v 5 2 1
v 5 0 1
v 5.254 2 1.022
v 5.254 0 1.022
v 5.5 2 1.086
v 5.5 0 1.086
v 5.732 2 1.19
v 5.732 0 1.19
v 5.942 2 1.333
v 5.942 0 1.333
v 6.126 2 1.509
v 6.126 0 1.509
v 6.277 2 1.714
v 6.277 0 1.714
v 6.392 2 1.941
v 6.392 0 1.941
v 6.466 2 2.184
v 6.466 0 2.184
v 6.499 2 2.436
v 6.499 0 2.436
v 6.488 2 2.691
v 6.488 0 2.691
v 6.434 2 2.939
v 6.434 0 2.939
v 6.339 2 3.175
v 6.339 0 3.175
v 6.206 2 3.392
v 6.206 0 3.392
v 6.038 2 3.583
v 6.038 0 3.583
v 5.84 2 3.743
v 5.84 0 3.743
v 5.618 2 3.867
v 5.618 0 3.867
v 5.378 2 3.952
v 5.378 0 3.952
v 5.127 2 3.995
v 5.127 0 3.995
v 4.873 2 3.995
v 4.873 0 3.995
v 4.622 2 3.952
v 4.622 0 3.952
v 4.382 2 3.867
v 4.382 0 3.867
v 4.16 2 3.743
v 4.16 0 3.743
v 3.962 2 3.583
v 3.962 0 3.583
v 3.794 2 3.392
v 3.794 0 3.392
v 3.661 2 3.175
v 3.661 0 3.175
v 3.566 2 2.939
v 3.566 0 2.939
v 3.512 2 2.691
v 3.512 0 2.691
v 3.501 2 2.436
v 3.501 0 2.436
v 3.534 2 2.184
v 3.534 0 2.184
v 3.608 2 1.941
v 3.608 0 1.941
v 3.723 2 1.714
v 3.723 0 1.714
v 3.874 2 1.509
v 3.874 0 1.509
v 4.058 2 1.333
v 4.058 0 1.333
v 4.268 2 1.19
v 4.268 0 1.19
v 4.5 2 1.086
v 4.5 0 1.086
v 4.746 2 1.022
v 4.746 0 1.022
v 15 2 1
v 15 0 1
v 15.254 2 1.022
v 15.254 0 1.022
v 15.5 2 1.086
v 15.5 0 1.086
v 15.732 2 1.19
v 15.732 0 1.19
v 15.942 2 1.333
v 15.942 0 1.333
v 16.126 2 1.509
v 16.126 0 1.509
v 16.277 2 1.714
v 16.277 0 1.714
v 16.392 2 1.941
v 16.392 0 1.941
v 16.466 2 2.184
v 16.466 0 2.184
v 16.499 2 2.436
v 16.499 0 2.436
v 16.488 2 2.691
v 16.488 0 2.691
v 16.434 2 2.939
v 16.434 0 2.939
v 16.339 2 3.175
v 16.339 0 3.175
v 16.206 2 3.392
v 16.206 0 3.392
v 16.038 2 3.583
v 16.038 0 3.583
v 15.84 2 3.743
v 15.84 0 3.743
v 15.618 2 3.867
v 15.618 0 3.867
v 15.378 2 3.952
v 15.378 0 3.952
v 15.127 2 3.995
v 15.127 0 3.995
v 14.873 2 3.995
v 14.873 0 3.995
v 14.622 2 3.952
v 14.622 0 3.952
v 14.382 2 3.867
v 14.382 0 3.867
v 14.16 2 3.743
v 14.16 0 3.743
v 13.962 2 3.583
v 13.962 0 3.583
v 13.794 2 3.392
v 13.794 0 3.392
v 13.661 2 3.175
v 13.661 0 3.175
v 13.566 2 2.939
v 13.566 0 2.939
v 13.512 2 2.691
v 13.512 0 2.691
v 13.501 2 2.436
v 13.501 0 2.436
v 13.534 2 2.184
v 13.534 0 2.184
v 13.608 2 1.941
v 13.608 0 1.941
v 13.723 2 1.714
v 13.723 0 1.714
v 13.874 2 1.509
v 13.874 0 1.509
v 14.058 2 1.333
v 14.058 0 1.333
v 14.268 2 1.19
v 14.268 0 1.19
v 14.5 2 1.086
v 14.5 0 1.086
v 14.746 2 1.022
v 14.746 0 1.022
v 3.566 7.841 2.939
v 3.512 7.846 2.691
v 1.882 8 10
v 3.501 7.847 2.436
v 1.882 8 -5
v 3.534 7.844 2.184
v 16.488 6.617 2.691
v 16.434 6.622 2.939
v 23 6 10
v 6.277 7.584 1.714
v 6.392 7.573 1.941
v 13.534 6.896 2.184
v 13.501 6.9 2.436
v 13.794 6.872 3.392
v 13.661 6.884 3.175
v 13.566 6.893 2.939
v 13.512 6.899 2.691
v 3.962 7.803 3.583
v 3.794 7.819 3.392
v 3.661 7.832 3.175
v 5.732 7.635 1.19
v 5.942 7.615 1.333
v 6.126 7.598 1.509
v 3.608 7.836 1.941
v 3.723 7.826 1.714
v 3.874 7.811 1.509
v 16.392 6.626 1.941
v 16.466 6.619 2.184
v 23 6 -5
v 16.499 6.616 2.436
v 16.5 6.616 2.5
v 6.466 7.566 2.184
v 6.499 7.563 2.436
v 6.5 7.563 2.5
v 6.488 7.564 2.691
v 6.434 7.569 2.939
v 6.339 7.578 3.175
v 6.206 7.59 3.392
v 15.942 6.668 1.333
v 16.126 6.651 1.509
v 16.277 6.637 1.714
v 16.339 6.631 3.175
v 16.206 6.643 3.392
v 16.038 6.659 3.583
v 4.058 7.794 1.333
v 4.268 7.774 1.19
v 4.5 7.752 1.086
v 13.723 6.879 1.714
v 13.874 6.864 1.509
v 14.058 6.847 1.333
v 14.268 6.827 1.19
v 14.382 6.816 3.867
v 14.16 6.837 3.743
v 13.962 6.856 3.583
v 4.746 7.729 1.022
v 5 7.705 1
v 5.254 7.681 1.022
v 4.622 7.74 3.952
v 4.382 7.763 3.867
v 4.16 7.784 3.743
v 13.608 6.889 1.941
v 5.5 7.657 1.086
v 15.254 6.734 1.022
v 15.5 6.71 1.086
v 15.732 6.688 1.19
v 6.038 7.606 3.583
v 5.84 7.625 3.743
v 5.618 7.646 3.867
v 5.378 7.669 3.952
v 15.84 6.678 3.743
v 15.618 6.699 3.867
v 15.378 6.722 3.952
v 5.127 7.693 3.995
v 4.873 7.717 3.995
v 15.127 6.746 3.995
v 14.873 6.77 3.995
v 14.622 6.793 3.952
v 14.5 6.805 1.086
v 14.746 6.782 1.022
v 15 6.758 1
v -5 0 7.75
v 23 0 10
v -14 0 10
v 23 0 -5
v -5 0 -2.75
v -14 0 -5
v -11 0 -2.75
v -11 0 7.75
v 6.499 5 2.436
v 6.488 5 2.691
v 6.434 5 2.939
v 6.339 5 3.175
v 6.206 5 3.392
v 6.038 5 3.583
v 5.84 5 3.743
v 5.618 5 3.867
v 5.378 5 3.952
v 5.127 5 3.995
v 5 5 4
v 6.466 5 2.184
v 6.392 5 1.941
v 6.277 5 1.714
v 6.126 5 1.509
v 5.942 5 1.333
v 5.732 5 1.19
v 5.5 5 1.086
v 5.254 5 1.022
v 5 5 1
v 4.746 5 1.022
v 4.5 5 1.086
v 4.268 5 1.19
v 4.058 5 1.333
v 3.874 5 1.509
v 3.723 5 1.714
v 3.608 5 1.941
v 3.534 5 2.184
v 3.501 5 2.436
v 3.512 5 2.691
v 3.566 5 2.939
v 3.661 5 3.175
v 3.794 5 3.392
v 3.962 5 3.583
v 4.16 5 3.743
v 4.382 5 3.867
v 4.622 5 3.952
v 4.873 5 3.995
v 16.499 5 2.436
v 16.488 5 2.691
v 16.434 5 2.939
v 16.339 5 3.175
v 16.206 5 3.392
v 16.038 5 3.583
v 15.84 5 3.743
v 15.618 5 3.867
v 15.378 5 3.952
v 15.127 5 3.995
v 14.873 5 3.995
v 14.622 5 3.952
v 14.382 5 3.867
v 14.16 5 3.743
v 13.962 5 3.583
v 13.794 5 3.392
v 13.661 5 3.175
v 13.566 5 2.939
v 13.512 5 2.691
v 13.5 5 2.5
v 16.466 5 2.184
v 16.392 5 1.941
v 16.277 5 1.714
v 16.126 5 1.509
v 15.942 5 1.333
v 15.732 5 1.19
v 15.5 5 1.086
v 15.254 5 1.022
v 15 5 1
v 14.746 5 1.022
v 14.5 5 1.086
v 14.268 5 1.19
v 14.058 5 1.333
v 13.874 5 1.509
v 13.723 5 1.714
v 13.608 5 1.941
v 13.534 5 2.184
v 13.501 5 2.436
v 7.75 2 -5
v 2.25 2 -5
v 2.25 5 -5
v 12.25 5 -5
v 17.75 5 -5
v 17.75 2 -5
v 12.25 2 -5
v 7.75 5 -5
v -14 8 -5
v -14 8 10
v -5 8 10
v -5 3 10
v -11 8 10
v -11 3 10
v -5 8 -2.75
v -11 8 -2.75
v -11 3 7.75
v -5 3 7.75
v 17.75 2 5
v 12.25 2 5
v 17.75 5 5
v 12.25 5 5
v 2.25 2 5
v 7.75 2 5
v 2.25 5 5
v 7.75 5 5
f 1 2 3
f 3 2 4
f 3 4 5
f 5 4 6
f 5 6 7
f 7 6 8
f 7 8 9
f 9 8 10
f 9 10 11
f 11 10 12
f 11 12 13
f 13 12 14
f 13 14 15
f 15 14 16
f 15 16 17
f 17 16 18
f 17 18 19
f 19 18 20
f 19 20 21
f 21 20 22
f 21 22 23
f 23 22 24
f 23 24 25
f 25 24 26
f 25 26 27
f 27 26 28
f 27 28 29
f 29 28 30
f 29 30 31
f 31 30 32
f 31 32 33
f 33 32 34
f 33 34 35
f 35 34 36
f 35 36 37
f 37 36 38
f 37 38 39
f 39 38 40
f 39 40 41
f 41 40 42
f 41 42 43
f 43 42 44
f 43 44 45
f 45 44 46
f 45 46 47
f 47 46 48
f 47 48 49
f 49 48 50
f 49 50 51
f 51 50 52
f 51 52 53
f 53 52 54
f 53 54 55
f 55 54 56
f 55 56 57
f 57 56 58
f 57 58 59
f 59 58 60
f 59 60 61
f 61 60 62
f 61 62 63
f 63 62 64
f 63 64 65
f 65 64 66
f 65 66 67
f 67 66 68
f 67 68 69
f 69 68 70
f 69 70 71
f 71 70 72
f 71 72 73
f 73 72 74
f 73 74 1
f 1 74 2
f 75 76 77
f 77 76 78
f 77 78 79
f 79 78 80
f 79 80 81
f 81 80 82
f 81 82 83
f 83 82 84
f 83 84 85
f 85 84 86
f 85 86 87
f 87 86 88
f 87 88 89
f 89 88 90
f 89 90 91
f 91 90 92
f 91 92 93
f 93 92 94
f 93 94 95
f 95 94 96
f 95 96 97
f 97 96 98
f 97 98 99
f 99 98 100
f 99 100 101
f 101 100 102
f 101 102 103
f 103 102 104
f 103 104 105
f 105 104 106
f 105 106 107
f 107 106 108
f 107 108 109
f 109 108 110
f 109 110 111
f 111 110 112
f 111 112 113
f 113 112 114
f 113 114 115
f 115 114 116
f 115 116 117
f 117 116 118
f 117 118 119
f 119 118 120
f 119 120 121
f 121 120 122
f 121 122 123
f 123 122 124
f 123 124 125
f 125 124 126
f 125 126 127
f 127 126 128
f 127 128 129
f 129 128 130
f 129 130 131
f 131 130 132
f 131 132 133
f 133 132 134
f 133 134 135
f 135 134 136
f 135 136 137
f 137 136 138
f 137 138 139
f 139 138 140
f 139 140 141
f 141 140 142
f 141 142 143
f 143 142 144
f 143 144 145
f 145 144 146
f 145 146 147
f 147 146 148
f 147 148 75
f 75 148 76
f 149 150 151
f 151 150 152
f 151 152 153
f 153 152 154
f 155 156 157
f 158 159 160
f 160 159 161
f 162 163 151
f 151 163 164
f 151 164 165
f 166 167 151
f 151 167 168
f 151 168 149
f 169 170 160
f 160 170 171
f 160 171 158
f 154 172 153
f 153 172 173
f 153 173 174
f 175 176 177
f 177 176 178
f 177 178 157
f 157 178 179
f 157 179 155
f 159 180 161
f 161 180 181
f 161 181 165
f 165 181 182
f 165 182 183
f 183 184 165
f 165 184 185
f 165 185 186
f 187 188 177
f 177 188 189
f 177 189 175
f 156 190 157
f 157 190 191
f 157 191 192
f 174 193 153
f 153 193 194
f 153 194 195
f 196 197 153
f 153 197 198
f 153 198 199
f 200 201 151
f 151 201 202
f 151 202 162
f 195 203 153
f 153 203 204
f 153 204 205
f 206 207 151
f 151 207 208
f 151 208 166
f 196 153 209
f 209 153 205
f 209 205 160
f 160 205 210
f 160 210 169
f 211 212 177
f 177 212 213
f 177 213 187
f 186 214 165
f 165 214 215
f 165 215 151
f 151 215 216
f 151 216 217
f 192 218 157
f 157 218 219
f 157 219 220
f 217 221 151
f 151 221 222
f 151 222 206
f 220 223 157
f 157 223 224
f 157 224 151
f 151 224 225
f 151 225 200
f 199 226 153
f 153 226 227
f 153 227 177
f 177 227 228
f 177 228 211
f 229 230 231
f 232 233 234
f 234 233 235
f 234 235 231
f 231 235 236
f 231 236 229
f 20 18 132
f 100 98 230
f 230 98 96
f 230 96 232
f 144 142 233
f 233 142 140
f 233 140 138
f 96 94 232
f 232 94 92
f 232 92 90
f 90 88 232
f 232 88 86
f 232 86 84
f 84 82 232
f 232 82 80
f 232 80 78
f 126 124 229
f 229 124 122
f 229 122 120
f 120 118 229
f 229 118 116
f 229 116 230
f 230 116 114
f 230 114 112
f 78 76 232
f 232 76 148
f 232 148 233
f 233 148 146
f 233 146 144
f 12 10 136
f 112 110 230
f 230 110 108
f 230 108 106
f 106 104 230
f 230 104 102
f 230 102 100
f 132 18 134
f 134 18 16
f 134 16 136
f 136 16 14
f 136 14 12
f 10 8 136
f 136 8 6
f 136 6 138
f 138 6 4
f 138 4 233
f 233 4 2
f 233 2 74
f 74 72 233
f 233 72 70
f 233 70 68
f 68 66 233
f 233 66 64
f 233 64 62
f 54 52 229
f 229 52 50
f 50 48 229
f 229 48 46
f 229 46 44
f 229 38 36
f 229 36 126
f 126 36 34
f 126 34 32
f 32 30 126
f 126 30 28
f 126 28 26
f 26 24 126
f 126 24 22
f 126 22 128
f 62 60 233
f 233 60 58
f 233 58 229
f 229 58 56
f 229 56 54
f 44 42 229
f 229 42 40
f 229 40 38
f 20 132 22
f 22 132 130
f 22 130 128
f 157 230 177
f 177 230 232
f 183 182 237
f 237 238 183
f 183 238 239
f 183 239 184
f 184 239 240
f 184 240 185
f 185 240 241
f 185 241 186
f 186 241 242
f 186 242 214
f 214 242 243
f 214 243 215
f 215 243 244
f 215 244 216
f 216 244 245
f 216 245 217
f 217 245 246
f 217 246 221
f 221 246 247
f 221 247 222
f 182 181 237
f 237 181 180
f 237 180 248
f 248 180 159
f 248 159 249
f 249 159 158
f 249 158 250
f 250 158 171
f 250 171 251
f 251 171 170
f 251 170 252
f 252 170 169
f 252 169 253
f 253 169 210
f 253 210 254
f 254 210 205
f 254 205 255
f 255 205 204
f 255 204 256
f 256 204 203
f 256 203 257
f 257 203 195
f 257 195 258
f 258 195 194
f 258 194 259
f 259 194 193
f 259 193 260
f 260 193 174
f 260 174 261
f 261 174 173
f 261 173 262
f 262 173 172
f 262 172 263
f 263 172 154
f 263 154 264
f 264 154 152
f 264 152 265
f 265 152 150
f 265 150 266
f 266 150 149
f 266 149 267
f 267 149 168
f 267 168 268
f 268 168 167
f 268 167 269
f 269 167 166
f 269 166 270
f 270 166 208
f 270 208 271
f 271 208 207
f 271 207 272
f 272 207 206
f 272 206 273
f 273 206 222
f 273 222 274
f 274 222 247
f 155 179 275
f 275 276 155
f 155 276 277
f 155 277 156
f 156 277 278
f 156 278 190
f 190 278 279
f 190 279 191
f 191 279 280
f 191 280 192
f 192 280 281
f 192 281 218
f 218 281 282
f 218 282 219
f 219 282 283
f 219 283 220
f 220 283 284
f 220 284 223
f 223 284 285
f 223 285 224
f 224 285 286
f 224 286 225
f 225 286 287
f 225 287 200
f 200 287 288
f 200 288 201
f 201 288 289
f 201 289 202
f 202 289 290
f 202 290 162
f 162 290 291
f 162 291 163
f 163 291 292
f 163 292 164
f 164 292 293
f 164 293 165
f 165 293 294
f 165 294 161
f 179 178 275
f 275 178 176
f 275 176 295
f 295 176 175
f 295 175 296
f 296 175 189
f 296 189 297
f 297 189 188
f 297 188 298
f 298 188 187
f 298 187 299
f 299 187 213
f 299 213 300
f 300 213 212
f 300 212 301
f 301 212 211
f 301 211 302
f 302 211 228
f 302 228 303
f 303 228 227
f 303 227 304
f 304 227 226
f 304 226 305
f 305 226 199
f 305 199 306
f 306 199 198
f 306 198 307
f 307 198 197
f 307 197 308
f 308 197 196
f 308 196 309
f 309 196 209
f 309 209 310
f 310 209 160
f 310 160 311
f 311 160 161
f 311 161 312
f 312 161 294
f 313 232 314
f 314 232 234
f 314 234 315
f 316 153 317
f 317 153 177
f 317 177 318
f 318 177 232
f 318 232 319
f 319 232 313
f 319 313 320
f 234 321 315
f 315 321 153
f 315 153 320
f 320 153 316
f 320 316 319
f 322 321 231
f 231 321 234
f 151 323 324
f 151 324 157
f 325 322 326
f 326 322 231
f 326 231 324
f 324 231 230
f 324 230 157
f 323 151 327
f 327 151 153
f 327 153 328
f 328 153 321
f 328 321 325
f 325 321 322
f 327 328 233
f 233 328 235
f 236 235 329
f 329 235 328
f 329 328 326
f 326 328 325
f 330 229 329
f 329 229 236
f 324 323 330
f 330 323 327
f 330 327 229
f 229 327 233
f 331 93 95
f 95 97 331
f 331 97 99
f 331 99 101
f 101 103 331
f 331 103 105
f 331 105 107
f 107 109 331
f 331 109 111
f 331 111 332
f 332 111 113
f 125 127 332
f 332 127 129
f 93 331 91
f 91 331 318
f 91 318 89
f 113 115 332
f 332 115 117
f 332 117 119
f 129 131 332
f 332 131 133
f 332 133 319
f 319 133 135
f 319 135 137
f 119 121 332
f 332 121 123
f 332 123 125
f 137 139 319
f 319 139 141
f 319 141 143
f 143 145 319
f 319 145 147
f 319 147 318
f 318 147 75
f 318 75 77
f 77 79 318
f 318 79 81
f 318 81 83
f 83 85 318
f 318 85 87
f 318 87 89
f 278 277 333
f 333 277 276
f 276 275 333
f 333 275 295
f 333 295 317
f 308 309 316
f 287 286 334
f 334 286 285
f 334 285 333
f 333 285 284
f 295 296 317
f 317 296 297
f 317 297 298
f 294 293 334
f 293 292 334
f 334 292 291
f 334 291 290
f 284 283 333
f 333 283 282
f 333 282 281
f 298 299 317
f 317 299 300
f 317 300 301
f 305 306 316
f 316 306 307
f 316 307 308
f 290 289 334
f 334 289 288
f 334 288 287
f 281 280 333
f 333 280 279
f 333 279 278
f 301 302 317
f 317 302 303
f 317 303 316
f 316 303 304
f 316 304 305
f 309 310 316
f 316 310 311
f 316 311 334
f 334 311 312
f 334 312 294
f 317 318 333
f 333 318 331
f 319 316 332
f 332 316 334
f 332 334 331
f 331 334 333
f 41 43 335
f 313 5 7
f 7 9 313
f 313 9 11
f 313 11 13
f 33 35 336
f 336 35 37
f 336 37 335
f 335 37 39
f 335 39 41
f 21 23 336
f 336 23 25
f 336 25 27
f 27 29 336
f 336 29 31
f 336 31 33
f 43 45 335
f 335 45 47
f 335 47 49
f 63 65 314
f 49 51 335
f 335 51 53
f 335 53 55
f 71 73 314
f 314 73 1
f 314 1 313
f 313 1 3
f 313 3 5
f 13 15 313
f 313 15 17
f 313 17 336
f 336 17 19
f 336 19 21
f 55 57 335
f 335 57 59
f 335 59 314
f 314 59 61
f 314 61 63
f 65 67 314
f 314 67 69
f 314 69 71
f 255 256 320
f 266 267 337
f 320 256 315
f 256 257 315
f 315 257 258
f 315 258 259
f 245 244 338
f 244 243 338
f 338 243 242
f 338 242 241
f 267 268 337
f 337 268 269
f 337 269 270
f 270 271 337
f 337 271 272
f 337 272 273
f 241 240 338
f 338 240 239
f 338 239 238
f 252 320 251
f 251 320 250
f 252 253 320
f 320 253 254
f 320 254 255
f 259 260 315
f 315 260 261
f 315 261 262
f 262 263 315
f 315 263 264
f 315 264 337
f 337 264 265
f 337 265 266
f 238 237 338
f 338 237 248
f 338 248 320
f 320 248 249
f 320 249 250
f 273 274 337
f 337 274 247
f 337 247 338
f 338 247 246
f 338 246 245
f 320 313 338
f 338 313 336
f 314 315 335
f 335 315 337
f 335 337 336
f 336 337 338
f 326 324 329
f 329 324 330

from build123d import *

# Parameters (mm, degrees)
BOSS_EXTRUDE1_DEPTH     = 5
SKETCH2_R               = 1.5
CUT_EXTRUDE1_DEPTH      = 10
SKETCH4_W               = 6
SKETCH4_H               = 10.5
BOSS_EXTRUDE2_DEPTH     = 8
SKETCH3_W               = 5.5
SKETCH3_H               = 3
CUT_EXTRUDE2_DEPTH      = 27.379590534
CUT_EXTRUDE4_DEPTH      = 27.379590534
CUT_EXTRUDE4_DEPTH_BACK = 27.379590534
SKETCH9_W               = 6
SKETCH9_H               = 2.25
CUT_EXTRUDE5_DEPTH      = 5


with BuildPart() as part:
    # Sketch1 → Boss-Extrude1 (new body)
    with BuildSketch(Plane.XY):
        Polygon((0, 8.178190311), (0, 0), (23, 0), (23, 6), align=None)
    extrude(amount=BOSS_EXTRUDE1_DEPTH)

    # Sketch2 → Cut-Extrude1 (cut)
    with BuildSketch(Plane(origin=(0, 0, 0), x_dir=(-1, 0, 0), z_dir=(0, -1, 0))):
        with Locations(Location((-15, -2.5, 0), (0, 0, 90))):
            Circle(SKETCH2_R)
        with Locations(Location((-5, -2.5, 0), (0, 0, 90))):
            Circle(SKETCH2_R)
    extrude(amount=-CUT_EXTRUDE1_DEPTH, mode=Mode.SUBTRACT)

    # Sketch4 → Boss-Extrude2 (add)
    with BuildSketch(Plane(origin=(0, 0, 0), x_dir=(-1, 0, 0), z_dir=(0, -1, 0))):
        Polygon((0, -5), (-23, -5), (-23, -10), (14, -10), (14, 5), (-23, 5), (-23, 0), (0, 0), align=None)
        with Locations((8, -2.5)):
            Rectangle(SKETCH4_W, SKETCH4_H, mode=Mode.SUBTRACT)
    extrude(amount=-BOSS_EXTRUDE2_DEPTH)

    # Sketch3 → Cut-Extrude2 (cut, through all)
    with BuildSketch(Plane.XY.offset(5)):
        with Locations((5, 3.5)):
            Rectangle(SKETCH3_W, SKETCH3_H)
        with Locations((15, 3.5)):
            Rectangle(SKETCH3_W, SKETCH3_H)
    extrude(amount=-CUT_EXTRUDE2_DEPTH, mode=Mode.SUBTRACT)

    # Sketch5 → Cut-Extrude4 (cut, two sides: drawn at the far end of the back side and taken through both)
    with BuildSketch(Plane.XY.offset(5).offset(-CUT_EXTRUDE4_DEPTH_BACK)):
        Polygon((23, 8), (1.881551454, 8), (23, 6), align=None)
        Polygon((1.881551454, 8), (0, 8.178190311), (0, 8), align=None)
    extrude(amount=CUT_EXTRUDE4_DEPTH + CUT_EXTRUDE4_DEPTH_BACK, mode=Mode.SUBTRACT)

    # Sketch9 → Cut-Extrude5 (cut)
    with BuildSketch(Plane(origin=(0, 8, 0), x_dir=(1, 0, 0), z_dir=(0, 1, 0))):
        with Locations((-8, -8.875)):
            Rectangle(SKETCH9_W, SKETCH9_H)
    extrude(amount=-CUT_EXTRUDE5_DEPTH, mode=Mode.SUBTRACT)


solid = part.part
